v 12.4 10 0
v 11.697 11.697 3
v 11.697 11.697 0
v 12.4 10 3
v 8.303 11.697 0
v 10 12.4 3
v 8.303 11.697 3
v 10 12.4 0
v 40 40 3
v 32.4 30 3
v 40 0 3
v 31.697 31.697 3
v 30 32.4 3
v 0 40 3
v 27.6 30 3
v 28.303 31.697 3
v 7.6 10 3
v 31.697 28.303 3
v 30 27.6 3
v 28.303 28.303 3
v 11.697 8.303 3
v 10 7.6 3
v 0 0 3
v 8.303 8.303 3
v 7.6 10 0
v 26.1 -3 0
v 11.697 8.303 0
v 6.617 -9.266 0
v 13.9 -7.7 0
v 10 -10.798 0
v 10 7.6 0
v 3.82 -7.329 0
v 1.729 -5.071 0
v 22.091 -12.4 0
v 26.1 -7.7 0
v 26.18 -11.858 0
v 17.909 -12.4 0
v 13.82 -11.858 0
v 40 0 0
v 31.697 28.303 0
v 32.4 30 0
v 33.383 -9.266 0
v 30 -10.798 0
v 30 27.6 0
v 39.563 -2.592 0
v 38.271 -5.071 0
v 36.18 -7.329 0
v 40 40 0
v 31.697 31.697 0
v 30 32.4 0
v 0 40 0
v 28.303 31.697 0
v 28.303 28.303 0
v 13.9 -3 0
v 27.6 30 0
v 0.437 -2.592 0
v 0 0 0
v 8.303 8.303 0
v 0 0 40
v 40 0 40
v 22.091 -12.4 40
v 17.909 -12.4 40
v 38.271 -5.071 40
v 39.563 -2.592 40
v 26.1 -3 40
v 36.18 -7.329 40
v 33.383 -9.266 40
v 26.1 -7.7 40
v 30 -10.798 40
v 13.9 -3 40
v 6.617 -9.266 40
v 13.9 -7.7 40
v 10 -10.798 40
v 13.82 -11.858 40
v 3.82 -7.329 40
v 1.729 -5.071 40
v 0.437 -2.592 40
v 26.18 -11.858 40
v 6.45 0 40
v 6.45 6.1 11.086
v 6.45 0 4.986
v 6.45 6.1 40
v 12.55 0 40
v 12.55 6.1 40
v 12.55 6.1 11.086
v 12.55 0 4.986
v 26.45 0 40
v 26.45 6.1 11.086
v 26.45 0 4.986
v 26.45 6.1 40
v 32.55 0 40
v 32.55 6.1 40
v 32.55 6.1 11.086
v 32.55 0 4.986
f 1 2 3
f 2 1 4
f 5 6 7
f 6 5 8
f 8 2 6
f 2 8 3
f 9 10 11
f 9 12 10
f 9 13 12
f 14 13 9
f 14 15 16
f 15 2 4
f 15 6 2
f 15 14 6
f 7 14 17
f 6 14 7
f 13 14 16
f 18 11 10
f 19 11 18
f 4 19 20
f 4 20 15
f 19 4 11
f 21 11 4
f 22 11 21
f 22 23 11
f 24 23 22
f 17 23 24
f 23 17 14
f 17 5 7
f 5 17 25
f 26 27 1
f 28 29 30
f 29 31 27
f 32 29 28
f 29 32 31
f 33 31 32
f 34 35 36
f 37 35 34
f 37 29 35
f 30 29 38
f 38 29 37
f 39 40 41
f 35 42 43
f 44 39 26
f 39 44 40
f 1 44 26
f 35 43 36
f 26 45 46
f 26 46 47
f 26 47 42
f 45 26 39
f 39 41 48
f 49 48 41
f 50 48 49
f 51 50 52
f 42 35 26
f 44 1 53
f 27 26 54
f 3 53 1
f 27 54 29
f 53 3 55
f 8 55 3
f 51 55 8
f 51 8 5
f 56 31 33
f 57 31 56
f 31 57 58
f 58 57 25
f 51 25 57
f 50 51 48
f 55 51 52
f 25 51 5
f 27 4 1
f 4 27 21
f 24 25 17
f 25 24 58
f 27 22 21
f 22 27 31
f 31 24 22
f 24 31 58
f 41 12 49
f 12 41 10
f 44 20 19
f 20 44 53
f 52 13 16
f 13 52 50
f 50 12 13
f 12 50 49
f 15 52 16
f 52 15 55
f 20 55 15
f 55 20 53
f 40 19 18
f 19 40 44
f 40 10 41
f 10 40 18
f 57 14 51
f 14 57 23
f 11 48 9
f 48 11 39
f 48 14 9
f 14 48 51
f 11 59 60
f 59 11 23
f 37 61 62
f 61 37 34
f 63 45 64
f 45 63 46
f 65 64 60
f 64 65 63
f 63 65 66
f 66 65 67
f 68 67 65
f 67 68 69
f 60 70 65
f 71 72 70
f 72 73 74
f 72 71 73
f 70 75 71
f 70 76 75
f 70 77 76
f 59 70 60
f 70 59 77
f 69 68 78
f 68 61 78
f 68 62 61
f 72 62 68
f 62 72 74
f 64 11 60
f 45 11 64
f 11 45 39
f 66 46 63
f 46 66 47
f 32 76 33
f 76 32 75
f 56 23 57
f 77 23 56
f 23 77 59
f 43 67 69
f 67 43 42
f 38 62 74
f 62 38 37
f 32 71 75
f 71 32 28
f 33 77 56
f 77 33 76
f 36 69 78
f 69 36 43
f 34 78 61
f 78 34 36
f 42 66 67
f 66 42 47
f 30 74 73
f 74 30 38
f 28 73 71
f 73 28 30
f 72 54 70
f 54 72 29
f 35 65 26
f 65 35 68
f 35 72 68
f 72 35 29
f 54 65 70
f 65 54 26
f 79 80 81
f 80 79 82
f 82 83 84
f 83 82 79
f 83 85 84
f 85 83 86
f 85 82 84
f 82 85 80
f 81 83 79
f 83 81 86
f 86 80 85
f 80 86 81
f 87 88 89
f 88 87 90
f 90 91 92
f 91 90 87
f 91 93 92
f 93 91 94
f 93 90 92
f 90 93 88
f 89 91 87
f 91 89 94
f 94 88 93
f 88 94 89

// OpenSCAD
screwD = 4.8;
screwHoles = [[10, 10], [30, 30]];
thickness = 3;
usbDims = [12.2, 4.7];
frameW = 40;
cutInFrameDims = [6.1, 6.1];
cutsInFrameCentersX = [9.5, 29.5];
gapBtwFaceAndCut = 1.5;

difference() {
    cube([frameW, frameW, thickness]);
    for (screwHole = screwHoles) {
        translate([screwHole[0], screwHole[1], 0]) cylinder(d = screwD, h = thickness);
    }
}

translate([frameW/2, 0, 0]) {
    difference() {
        resize([0, (usbDims[1]*2 + thickness) * 2, 0]) cylinder(d = frameW, h = frameW);
        translate([-frameW/2, 0, 0]) cube([frameW, frameW/2, frameW]);
        translate([0, -(usbDims[1]/2 + thickness), frameW/2])cube([usbDims[0], usbDims[1], frameW], center=true);
    }
}
length = frameW - thickness - gapBtwFaceAndCut;
for (cutInFrameX = cutsInFrameCentersX) {
    translate([cutInFrameX, cutInFrameDims[1]/2, thickness + gapBtwFaceAndCut]) {
        difference() {
            translate([0, 0, length/2])
            cube([cutInFrameDims[0], cutInFrameDims[1], length], center=true);
            // hardcoded. need to be set manually
            rotate([-45, 0, 0]) cube([cutInFrameDims[0], 5, 20], center=true);
        }
    }
}
